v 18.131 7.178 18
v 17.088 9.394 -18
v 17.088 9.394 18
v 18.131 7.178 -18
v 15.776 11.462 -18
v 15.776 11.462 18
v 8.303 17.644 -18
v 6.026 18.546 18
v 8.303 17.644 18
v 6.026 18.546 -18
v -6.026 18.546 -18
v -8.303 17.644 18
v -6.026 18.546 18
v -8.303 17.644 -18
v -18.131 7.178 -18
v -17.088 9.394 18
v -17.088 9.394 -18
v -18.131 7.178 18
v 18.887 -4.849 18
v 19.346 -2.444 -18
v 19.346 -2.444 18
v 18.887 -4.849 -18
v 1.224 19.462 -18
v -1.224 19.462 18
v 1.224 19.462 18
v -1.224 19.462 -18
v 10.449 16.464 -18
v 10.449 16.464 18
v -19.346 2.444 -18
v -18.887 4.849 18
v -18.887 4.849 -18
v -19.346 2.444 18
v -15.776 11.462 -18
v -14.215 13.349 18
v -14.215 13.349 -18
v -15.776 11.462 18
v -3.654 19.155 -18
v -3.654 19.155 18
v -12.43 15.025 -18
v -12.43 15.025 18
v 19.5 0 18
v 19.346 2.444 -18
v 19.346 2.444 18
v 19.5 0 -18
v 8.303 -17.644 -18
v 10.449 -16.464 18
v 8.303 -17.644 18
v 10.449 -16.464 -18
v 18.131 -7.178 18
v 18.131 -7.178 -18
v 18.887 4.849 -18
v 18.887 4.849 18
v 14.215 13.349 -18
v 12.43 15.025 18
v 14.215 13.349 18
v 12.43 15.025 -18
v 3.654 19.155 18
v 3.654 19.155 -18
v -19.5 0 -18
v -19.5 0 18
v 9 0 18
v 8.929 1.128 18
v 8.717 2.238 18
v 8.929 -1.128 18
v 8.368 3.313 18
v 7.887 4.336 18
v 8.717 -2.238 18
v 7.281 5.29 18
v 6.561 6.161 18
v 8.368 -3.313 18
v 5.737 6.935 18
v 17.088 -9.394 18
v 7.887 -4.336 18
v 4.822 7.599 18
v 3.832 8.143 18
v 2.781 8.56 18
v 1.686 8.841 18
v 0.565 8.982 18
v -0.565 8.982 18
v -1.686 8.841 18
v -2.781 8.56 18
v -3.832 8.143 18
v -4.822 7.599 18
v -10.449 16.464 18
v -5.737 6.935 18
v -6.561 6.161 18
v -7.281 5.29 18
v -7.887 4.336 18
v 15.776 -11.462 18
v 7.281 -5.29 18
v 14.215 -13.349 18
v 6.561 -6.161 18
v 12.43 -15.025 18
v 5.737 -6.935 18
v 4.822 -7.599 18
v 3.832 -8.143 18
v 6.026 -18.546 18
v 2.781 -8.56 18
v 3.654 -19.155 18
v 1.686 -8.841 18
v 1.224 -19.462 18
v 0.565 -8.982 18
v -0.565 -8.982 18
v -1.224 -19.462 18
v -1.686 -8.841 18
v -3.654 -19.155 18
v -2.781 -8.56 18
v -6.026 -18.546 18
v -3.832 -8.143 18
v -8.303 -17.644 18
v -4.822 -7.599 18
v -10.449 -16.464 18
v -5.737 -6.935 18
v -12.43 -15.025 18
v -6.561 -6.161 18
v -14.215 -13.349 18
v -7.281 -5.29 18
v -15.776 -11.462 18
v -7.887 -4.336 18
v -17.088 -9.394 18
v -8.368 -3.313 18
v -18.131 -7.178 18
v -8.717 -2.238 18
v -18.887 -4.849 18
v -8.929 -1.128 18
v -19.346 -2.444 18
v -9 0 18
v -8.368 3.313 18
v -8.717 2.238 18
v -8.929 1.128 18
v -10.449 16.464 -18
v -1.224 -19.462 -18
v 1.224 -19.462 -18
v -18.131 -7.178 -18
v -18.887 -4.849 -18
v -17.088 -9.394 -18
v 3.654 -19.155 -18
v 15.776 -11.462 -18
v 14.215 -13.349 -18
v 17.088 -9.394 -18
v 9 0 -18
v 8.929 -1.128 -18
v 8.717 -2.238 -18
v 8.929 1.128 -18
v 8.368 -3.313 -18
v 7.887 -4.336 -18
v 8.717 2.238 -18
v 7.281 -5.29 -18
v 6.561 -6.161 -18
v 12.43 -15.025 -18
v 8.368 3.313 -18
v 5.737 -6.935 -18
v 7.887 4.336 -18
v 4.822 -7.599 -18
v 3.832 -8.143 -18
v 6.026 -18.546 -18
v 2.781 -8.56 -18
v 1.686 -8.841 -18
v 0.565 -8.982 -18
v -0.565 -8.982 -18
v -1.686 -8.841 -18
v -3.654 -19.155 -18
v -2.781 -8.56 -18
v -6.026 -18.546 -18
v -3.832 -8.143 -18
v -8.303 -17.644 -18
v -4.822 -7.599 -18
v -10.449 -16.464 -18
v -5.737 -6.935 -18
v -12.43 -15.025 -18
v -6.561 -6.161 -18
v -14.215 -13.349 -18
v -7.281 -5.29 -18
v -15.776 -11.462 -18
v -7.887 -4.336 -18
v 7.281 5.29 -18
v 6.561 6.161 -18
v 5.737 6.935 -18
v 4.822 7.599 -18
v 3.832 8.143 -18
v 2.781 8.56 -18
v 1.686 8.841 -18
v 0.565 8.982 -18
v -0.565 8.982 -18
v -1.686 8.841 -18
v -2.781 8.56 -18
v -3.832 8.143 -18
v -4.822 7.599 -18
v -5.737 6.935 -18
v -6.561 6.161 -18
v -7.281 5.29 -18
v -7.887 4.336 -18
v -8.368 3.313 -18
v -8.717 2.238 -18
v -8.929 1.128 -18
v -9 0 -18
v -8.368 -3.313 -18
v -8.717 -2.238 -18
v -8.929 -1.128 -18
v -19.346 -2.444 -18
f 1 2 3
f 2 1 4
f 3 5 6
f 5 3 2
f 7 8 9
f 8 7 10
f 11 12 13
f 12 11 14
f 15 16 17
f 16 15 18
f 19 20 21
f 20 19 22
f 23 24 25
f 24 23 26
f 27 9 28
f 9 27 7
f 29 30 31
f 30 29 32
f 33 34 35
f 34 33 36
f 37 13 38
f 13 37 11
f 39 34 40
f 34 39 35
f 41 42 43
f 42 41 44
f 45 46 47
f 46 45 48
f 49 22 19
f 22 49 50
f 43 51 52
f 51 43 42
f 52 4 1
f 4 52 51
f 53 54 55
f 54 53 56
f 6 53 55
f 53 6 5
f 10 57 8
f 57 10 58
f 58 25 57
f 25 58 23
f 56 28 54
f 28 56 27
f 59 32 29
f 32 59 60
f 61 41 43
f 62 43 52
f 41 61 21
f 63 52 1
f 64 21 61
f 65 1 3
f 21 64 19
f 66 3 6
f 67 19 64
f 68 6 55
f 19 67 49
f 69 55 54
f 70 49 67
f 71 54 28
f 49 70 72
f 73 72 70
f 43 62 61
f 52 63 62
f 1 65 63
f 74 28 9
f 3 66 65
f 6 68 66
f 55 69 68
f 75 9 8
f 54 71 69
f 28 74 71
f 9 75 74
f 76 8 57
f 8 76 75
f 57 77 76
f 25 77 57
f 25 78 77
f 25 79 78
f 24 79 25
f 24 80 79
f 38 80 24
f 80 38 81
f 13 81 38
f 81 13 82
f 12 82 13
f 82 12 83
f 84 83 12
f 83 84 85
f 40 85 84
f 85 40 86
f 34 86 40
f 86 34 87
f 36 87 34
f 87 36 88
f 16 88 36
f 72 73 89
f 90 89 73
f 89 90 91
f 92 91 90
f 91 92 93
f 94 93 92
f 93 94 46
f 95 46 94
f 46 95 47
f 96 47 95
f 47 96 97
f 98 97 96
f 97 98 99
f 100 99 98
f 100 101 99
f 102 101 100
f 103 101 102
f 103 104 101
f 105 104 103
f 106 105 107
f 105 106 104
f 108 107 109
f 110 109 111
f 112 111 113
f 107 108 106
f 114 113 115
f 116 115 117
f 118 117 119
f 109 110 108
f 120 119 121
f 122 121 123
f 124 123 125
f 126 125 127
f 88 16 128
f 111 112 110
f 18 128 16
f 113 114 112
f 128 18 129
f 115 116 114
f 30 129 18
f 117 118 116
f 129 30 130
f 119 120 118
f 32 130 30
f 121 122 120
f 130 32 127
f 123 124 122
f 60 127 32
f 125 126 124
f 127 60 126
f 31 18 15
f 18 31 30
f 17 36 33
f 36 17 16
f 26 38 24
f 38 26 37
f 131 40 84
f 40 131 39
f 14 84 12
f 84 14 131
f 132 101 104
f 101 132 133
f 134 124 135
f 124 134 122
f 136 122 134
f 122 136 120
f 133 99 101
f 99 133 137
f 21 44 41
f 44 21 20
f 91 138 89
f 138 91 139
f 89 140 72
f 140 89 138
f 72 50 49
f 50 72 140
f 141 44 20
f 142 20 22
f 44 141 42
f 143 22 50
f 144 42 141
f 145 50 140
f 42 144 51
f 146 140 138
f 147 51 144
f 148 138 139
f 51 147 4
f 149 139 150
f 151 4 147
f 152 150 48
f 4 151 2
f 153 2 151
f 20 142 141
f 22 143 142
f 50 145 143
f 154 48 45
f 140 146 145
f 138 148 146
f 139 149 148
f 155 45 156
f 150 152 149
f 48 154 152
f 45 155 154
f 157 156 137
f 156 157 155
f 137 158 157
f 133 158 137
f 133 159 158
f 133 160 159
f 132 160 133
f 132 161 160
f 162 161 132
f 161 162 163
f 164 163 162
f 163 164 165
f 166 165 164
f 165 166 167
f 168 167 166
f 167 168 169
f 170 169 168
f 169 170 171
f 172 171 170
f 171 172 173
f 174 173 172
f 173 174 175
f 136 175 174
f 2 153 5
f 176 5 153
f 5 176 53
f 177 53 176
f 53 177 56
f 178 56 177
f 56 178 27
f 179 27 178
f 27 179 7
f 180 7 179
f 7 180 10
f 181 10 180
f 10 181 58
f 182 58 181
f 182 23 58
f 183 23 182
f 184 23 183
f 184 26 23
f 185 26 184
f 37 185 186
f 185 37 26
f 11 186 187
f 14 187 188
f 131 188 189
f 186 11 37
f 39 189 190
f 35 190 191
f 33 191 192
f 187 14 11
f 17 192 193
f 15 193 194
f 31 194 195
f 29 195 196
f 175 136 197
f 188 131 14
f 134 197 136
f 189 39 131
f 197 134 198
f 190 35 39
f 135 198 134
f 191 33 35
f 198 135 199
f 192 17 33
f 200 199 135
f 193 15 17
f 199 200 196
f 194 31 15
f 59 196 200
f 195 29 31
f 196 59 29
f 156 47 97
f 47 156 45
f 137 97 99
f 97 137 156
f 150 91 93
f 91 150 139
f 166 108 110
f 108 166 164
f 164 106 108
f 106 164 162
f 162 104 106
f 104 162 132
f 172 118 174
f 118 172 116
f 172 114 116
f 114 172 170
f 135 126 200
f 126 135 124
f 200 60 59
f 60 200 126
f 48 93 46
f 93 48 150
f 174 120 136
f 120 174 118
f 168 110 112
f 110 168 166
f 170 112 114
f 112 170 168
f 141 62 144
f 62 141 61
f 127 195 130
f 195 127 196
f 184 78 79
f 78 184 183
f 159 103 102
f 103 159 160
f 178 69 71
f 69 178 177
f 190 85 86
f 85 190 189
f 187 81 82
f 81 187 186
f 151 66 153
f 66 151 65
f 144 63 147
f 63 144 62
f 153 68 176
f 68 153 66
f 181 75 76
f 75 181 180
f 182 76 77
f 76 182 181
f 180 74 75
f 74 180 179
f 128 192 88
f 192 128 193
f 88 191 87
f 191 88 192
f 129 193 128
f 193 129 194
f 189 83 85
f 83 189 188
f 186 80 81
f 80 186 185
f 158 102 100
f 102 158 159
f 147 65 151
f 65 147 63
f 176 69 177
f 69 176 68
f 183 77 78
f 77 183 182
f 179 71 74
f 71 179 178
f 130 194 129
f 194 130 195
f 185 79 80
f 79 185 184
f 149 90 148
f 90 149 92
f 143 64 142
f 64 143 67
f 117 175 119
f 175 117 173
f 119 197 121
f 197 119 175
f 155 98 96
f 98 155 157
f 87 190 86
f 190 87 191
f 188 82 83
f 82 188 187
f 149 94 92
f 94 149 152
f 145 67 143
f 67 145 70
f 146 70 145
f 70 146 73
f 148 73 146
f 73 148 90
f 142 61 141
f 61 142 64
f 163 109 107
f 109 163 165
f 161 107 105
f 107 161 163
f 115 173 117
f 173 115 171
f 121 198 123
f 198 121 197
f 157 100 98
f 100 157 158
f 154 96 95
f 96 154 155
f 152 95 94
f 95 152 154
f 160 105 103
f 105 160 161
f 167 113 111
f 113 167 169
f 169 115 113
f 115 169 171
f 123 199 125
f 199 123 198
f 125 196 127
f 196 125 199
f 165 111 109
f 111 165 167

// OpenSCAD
$fn = 50;


difference() {
	union() {
		translate(v = [0, 0, -18.0000000000]) {
			cylinder(h = 36, r = 19.5000000000);
		}
	}
	union() {
		translate(v = [0, 0, -100.0000000000]) {
			cylinder(h = 200, r = 9);
		}
	}
}
